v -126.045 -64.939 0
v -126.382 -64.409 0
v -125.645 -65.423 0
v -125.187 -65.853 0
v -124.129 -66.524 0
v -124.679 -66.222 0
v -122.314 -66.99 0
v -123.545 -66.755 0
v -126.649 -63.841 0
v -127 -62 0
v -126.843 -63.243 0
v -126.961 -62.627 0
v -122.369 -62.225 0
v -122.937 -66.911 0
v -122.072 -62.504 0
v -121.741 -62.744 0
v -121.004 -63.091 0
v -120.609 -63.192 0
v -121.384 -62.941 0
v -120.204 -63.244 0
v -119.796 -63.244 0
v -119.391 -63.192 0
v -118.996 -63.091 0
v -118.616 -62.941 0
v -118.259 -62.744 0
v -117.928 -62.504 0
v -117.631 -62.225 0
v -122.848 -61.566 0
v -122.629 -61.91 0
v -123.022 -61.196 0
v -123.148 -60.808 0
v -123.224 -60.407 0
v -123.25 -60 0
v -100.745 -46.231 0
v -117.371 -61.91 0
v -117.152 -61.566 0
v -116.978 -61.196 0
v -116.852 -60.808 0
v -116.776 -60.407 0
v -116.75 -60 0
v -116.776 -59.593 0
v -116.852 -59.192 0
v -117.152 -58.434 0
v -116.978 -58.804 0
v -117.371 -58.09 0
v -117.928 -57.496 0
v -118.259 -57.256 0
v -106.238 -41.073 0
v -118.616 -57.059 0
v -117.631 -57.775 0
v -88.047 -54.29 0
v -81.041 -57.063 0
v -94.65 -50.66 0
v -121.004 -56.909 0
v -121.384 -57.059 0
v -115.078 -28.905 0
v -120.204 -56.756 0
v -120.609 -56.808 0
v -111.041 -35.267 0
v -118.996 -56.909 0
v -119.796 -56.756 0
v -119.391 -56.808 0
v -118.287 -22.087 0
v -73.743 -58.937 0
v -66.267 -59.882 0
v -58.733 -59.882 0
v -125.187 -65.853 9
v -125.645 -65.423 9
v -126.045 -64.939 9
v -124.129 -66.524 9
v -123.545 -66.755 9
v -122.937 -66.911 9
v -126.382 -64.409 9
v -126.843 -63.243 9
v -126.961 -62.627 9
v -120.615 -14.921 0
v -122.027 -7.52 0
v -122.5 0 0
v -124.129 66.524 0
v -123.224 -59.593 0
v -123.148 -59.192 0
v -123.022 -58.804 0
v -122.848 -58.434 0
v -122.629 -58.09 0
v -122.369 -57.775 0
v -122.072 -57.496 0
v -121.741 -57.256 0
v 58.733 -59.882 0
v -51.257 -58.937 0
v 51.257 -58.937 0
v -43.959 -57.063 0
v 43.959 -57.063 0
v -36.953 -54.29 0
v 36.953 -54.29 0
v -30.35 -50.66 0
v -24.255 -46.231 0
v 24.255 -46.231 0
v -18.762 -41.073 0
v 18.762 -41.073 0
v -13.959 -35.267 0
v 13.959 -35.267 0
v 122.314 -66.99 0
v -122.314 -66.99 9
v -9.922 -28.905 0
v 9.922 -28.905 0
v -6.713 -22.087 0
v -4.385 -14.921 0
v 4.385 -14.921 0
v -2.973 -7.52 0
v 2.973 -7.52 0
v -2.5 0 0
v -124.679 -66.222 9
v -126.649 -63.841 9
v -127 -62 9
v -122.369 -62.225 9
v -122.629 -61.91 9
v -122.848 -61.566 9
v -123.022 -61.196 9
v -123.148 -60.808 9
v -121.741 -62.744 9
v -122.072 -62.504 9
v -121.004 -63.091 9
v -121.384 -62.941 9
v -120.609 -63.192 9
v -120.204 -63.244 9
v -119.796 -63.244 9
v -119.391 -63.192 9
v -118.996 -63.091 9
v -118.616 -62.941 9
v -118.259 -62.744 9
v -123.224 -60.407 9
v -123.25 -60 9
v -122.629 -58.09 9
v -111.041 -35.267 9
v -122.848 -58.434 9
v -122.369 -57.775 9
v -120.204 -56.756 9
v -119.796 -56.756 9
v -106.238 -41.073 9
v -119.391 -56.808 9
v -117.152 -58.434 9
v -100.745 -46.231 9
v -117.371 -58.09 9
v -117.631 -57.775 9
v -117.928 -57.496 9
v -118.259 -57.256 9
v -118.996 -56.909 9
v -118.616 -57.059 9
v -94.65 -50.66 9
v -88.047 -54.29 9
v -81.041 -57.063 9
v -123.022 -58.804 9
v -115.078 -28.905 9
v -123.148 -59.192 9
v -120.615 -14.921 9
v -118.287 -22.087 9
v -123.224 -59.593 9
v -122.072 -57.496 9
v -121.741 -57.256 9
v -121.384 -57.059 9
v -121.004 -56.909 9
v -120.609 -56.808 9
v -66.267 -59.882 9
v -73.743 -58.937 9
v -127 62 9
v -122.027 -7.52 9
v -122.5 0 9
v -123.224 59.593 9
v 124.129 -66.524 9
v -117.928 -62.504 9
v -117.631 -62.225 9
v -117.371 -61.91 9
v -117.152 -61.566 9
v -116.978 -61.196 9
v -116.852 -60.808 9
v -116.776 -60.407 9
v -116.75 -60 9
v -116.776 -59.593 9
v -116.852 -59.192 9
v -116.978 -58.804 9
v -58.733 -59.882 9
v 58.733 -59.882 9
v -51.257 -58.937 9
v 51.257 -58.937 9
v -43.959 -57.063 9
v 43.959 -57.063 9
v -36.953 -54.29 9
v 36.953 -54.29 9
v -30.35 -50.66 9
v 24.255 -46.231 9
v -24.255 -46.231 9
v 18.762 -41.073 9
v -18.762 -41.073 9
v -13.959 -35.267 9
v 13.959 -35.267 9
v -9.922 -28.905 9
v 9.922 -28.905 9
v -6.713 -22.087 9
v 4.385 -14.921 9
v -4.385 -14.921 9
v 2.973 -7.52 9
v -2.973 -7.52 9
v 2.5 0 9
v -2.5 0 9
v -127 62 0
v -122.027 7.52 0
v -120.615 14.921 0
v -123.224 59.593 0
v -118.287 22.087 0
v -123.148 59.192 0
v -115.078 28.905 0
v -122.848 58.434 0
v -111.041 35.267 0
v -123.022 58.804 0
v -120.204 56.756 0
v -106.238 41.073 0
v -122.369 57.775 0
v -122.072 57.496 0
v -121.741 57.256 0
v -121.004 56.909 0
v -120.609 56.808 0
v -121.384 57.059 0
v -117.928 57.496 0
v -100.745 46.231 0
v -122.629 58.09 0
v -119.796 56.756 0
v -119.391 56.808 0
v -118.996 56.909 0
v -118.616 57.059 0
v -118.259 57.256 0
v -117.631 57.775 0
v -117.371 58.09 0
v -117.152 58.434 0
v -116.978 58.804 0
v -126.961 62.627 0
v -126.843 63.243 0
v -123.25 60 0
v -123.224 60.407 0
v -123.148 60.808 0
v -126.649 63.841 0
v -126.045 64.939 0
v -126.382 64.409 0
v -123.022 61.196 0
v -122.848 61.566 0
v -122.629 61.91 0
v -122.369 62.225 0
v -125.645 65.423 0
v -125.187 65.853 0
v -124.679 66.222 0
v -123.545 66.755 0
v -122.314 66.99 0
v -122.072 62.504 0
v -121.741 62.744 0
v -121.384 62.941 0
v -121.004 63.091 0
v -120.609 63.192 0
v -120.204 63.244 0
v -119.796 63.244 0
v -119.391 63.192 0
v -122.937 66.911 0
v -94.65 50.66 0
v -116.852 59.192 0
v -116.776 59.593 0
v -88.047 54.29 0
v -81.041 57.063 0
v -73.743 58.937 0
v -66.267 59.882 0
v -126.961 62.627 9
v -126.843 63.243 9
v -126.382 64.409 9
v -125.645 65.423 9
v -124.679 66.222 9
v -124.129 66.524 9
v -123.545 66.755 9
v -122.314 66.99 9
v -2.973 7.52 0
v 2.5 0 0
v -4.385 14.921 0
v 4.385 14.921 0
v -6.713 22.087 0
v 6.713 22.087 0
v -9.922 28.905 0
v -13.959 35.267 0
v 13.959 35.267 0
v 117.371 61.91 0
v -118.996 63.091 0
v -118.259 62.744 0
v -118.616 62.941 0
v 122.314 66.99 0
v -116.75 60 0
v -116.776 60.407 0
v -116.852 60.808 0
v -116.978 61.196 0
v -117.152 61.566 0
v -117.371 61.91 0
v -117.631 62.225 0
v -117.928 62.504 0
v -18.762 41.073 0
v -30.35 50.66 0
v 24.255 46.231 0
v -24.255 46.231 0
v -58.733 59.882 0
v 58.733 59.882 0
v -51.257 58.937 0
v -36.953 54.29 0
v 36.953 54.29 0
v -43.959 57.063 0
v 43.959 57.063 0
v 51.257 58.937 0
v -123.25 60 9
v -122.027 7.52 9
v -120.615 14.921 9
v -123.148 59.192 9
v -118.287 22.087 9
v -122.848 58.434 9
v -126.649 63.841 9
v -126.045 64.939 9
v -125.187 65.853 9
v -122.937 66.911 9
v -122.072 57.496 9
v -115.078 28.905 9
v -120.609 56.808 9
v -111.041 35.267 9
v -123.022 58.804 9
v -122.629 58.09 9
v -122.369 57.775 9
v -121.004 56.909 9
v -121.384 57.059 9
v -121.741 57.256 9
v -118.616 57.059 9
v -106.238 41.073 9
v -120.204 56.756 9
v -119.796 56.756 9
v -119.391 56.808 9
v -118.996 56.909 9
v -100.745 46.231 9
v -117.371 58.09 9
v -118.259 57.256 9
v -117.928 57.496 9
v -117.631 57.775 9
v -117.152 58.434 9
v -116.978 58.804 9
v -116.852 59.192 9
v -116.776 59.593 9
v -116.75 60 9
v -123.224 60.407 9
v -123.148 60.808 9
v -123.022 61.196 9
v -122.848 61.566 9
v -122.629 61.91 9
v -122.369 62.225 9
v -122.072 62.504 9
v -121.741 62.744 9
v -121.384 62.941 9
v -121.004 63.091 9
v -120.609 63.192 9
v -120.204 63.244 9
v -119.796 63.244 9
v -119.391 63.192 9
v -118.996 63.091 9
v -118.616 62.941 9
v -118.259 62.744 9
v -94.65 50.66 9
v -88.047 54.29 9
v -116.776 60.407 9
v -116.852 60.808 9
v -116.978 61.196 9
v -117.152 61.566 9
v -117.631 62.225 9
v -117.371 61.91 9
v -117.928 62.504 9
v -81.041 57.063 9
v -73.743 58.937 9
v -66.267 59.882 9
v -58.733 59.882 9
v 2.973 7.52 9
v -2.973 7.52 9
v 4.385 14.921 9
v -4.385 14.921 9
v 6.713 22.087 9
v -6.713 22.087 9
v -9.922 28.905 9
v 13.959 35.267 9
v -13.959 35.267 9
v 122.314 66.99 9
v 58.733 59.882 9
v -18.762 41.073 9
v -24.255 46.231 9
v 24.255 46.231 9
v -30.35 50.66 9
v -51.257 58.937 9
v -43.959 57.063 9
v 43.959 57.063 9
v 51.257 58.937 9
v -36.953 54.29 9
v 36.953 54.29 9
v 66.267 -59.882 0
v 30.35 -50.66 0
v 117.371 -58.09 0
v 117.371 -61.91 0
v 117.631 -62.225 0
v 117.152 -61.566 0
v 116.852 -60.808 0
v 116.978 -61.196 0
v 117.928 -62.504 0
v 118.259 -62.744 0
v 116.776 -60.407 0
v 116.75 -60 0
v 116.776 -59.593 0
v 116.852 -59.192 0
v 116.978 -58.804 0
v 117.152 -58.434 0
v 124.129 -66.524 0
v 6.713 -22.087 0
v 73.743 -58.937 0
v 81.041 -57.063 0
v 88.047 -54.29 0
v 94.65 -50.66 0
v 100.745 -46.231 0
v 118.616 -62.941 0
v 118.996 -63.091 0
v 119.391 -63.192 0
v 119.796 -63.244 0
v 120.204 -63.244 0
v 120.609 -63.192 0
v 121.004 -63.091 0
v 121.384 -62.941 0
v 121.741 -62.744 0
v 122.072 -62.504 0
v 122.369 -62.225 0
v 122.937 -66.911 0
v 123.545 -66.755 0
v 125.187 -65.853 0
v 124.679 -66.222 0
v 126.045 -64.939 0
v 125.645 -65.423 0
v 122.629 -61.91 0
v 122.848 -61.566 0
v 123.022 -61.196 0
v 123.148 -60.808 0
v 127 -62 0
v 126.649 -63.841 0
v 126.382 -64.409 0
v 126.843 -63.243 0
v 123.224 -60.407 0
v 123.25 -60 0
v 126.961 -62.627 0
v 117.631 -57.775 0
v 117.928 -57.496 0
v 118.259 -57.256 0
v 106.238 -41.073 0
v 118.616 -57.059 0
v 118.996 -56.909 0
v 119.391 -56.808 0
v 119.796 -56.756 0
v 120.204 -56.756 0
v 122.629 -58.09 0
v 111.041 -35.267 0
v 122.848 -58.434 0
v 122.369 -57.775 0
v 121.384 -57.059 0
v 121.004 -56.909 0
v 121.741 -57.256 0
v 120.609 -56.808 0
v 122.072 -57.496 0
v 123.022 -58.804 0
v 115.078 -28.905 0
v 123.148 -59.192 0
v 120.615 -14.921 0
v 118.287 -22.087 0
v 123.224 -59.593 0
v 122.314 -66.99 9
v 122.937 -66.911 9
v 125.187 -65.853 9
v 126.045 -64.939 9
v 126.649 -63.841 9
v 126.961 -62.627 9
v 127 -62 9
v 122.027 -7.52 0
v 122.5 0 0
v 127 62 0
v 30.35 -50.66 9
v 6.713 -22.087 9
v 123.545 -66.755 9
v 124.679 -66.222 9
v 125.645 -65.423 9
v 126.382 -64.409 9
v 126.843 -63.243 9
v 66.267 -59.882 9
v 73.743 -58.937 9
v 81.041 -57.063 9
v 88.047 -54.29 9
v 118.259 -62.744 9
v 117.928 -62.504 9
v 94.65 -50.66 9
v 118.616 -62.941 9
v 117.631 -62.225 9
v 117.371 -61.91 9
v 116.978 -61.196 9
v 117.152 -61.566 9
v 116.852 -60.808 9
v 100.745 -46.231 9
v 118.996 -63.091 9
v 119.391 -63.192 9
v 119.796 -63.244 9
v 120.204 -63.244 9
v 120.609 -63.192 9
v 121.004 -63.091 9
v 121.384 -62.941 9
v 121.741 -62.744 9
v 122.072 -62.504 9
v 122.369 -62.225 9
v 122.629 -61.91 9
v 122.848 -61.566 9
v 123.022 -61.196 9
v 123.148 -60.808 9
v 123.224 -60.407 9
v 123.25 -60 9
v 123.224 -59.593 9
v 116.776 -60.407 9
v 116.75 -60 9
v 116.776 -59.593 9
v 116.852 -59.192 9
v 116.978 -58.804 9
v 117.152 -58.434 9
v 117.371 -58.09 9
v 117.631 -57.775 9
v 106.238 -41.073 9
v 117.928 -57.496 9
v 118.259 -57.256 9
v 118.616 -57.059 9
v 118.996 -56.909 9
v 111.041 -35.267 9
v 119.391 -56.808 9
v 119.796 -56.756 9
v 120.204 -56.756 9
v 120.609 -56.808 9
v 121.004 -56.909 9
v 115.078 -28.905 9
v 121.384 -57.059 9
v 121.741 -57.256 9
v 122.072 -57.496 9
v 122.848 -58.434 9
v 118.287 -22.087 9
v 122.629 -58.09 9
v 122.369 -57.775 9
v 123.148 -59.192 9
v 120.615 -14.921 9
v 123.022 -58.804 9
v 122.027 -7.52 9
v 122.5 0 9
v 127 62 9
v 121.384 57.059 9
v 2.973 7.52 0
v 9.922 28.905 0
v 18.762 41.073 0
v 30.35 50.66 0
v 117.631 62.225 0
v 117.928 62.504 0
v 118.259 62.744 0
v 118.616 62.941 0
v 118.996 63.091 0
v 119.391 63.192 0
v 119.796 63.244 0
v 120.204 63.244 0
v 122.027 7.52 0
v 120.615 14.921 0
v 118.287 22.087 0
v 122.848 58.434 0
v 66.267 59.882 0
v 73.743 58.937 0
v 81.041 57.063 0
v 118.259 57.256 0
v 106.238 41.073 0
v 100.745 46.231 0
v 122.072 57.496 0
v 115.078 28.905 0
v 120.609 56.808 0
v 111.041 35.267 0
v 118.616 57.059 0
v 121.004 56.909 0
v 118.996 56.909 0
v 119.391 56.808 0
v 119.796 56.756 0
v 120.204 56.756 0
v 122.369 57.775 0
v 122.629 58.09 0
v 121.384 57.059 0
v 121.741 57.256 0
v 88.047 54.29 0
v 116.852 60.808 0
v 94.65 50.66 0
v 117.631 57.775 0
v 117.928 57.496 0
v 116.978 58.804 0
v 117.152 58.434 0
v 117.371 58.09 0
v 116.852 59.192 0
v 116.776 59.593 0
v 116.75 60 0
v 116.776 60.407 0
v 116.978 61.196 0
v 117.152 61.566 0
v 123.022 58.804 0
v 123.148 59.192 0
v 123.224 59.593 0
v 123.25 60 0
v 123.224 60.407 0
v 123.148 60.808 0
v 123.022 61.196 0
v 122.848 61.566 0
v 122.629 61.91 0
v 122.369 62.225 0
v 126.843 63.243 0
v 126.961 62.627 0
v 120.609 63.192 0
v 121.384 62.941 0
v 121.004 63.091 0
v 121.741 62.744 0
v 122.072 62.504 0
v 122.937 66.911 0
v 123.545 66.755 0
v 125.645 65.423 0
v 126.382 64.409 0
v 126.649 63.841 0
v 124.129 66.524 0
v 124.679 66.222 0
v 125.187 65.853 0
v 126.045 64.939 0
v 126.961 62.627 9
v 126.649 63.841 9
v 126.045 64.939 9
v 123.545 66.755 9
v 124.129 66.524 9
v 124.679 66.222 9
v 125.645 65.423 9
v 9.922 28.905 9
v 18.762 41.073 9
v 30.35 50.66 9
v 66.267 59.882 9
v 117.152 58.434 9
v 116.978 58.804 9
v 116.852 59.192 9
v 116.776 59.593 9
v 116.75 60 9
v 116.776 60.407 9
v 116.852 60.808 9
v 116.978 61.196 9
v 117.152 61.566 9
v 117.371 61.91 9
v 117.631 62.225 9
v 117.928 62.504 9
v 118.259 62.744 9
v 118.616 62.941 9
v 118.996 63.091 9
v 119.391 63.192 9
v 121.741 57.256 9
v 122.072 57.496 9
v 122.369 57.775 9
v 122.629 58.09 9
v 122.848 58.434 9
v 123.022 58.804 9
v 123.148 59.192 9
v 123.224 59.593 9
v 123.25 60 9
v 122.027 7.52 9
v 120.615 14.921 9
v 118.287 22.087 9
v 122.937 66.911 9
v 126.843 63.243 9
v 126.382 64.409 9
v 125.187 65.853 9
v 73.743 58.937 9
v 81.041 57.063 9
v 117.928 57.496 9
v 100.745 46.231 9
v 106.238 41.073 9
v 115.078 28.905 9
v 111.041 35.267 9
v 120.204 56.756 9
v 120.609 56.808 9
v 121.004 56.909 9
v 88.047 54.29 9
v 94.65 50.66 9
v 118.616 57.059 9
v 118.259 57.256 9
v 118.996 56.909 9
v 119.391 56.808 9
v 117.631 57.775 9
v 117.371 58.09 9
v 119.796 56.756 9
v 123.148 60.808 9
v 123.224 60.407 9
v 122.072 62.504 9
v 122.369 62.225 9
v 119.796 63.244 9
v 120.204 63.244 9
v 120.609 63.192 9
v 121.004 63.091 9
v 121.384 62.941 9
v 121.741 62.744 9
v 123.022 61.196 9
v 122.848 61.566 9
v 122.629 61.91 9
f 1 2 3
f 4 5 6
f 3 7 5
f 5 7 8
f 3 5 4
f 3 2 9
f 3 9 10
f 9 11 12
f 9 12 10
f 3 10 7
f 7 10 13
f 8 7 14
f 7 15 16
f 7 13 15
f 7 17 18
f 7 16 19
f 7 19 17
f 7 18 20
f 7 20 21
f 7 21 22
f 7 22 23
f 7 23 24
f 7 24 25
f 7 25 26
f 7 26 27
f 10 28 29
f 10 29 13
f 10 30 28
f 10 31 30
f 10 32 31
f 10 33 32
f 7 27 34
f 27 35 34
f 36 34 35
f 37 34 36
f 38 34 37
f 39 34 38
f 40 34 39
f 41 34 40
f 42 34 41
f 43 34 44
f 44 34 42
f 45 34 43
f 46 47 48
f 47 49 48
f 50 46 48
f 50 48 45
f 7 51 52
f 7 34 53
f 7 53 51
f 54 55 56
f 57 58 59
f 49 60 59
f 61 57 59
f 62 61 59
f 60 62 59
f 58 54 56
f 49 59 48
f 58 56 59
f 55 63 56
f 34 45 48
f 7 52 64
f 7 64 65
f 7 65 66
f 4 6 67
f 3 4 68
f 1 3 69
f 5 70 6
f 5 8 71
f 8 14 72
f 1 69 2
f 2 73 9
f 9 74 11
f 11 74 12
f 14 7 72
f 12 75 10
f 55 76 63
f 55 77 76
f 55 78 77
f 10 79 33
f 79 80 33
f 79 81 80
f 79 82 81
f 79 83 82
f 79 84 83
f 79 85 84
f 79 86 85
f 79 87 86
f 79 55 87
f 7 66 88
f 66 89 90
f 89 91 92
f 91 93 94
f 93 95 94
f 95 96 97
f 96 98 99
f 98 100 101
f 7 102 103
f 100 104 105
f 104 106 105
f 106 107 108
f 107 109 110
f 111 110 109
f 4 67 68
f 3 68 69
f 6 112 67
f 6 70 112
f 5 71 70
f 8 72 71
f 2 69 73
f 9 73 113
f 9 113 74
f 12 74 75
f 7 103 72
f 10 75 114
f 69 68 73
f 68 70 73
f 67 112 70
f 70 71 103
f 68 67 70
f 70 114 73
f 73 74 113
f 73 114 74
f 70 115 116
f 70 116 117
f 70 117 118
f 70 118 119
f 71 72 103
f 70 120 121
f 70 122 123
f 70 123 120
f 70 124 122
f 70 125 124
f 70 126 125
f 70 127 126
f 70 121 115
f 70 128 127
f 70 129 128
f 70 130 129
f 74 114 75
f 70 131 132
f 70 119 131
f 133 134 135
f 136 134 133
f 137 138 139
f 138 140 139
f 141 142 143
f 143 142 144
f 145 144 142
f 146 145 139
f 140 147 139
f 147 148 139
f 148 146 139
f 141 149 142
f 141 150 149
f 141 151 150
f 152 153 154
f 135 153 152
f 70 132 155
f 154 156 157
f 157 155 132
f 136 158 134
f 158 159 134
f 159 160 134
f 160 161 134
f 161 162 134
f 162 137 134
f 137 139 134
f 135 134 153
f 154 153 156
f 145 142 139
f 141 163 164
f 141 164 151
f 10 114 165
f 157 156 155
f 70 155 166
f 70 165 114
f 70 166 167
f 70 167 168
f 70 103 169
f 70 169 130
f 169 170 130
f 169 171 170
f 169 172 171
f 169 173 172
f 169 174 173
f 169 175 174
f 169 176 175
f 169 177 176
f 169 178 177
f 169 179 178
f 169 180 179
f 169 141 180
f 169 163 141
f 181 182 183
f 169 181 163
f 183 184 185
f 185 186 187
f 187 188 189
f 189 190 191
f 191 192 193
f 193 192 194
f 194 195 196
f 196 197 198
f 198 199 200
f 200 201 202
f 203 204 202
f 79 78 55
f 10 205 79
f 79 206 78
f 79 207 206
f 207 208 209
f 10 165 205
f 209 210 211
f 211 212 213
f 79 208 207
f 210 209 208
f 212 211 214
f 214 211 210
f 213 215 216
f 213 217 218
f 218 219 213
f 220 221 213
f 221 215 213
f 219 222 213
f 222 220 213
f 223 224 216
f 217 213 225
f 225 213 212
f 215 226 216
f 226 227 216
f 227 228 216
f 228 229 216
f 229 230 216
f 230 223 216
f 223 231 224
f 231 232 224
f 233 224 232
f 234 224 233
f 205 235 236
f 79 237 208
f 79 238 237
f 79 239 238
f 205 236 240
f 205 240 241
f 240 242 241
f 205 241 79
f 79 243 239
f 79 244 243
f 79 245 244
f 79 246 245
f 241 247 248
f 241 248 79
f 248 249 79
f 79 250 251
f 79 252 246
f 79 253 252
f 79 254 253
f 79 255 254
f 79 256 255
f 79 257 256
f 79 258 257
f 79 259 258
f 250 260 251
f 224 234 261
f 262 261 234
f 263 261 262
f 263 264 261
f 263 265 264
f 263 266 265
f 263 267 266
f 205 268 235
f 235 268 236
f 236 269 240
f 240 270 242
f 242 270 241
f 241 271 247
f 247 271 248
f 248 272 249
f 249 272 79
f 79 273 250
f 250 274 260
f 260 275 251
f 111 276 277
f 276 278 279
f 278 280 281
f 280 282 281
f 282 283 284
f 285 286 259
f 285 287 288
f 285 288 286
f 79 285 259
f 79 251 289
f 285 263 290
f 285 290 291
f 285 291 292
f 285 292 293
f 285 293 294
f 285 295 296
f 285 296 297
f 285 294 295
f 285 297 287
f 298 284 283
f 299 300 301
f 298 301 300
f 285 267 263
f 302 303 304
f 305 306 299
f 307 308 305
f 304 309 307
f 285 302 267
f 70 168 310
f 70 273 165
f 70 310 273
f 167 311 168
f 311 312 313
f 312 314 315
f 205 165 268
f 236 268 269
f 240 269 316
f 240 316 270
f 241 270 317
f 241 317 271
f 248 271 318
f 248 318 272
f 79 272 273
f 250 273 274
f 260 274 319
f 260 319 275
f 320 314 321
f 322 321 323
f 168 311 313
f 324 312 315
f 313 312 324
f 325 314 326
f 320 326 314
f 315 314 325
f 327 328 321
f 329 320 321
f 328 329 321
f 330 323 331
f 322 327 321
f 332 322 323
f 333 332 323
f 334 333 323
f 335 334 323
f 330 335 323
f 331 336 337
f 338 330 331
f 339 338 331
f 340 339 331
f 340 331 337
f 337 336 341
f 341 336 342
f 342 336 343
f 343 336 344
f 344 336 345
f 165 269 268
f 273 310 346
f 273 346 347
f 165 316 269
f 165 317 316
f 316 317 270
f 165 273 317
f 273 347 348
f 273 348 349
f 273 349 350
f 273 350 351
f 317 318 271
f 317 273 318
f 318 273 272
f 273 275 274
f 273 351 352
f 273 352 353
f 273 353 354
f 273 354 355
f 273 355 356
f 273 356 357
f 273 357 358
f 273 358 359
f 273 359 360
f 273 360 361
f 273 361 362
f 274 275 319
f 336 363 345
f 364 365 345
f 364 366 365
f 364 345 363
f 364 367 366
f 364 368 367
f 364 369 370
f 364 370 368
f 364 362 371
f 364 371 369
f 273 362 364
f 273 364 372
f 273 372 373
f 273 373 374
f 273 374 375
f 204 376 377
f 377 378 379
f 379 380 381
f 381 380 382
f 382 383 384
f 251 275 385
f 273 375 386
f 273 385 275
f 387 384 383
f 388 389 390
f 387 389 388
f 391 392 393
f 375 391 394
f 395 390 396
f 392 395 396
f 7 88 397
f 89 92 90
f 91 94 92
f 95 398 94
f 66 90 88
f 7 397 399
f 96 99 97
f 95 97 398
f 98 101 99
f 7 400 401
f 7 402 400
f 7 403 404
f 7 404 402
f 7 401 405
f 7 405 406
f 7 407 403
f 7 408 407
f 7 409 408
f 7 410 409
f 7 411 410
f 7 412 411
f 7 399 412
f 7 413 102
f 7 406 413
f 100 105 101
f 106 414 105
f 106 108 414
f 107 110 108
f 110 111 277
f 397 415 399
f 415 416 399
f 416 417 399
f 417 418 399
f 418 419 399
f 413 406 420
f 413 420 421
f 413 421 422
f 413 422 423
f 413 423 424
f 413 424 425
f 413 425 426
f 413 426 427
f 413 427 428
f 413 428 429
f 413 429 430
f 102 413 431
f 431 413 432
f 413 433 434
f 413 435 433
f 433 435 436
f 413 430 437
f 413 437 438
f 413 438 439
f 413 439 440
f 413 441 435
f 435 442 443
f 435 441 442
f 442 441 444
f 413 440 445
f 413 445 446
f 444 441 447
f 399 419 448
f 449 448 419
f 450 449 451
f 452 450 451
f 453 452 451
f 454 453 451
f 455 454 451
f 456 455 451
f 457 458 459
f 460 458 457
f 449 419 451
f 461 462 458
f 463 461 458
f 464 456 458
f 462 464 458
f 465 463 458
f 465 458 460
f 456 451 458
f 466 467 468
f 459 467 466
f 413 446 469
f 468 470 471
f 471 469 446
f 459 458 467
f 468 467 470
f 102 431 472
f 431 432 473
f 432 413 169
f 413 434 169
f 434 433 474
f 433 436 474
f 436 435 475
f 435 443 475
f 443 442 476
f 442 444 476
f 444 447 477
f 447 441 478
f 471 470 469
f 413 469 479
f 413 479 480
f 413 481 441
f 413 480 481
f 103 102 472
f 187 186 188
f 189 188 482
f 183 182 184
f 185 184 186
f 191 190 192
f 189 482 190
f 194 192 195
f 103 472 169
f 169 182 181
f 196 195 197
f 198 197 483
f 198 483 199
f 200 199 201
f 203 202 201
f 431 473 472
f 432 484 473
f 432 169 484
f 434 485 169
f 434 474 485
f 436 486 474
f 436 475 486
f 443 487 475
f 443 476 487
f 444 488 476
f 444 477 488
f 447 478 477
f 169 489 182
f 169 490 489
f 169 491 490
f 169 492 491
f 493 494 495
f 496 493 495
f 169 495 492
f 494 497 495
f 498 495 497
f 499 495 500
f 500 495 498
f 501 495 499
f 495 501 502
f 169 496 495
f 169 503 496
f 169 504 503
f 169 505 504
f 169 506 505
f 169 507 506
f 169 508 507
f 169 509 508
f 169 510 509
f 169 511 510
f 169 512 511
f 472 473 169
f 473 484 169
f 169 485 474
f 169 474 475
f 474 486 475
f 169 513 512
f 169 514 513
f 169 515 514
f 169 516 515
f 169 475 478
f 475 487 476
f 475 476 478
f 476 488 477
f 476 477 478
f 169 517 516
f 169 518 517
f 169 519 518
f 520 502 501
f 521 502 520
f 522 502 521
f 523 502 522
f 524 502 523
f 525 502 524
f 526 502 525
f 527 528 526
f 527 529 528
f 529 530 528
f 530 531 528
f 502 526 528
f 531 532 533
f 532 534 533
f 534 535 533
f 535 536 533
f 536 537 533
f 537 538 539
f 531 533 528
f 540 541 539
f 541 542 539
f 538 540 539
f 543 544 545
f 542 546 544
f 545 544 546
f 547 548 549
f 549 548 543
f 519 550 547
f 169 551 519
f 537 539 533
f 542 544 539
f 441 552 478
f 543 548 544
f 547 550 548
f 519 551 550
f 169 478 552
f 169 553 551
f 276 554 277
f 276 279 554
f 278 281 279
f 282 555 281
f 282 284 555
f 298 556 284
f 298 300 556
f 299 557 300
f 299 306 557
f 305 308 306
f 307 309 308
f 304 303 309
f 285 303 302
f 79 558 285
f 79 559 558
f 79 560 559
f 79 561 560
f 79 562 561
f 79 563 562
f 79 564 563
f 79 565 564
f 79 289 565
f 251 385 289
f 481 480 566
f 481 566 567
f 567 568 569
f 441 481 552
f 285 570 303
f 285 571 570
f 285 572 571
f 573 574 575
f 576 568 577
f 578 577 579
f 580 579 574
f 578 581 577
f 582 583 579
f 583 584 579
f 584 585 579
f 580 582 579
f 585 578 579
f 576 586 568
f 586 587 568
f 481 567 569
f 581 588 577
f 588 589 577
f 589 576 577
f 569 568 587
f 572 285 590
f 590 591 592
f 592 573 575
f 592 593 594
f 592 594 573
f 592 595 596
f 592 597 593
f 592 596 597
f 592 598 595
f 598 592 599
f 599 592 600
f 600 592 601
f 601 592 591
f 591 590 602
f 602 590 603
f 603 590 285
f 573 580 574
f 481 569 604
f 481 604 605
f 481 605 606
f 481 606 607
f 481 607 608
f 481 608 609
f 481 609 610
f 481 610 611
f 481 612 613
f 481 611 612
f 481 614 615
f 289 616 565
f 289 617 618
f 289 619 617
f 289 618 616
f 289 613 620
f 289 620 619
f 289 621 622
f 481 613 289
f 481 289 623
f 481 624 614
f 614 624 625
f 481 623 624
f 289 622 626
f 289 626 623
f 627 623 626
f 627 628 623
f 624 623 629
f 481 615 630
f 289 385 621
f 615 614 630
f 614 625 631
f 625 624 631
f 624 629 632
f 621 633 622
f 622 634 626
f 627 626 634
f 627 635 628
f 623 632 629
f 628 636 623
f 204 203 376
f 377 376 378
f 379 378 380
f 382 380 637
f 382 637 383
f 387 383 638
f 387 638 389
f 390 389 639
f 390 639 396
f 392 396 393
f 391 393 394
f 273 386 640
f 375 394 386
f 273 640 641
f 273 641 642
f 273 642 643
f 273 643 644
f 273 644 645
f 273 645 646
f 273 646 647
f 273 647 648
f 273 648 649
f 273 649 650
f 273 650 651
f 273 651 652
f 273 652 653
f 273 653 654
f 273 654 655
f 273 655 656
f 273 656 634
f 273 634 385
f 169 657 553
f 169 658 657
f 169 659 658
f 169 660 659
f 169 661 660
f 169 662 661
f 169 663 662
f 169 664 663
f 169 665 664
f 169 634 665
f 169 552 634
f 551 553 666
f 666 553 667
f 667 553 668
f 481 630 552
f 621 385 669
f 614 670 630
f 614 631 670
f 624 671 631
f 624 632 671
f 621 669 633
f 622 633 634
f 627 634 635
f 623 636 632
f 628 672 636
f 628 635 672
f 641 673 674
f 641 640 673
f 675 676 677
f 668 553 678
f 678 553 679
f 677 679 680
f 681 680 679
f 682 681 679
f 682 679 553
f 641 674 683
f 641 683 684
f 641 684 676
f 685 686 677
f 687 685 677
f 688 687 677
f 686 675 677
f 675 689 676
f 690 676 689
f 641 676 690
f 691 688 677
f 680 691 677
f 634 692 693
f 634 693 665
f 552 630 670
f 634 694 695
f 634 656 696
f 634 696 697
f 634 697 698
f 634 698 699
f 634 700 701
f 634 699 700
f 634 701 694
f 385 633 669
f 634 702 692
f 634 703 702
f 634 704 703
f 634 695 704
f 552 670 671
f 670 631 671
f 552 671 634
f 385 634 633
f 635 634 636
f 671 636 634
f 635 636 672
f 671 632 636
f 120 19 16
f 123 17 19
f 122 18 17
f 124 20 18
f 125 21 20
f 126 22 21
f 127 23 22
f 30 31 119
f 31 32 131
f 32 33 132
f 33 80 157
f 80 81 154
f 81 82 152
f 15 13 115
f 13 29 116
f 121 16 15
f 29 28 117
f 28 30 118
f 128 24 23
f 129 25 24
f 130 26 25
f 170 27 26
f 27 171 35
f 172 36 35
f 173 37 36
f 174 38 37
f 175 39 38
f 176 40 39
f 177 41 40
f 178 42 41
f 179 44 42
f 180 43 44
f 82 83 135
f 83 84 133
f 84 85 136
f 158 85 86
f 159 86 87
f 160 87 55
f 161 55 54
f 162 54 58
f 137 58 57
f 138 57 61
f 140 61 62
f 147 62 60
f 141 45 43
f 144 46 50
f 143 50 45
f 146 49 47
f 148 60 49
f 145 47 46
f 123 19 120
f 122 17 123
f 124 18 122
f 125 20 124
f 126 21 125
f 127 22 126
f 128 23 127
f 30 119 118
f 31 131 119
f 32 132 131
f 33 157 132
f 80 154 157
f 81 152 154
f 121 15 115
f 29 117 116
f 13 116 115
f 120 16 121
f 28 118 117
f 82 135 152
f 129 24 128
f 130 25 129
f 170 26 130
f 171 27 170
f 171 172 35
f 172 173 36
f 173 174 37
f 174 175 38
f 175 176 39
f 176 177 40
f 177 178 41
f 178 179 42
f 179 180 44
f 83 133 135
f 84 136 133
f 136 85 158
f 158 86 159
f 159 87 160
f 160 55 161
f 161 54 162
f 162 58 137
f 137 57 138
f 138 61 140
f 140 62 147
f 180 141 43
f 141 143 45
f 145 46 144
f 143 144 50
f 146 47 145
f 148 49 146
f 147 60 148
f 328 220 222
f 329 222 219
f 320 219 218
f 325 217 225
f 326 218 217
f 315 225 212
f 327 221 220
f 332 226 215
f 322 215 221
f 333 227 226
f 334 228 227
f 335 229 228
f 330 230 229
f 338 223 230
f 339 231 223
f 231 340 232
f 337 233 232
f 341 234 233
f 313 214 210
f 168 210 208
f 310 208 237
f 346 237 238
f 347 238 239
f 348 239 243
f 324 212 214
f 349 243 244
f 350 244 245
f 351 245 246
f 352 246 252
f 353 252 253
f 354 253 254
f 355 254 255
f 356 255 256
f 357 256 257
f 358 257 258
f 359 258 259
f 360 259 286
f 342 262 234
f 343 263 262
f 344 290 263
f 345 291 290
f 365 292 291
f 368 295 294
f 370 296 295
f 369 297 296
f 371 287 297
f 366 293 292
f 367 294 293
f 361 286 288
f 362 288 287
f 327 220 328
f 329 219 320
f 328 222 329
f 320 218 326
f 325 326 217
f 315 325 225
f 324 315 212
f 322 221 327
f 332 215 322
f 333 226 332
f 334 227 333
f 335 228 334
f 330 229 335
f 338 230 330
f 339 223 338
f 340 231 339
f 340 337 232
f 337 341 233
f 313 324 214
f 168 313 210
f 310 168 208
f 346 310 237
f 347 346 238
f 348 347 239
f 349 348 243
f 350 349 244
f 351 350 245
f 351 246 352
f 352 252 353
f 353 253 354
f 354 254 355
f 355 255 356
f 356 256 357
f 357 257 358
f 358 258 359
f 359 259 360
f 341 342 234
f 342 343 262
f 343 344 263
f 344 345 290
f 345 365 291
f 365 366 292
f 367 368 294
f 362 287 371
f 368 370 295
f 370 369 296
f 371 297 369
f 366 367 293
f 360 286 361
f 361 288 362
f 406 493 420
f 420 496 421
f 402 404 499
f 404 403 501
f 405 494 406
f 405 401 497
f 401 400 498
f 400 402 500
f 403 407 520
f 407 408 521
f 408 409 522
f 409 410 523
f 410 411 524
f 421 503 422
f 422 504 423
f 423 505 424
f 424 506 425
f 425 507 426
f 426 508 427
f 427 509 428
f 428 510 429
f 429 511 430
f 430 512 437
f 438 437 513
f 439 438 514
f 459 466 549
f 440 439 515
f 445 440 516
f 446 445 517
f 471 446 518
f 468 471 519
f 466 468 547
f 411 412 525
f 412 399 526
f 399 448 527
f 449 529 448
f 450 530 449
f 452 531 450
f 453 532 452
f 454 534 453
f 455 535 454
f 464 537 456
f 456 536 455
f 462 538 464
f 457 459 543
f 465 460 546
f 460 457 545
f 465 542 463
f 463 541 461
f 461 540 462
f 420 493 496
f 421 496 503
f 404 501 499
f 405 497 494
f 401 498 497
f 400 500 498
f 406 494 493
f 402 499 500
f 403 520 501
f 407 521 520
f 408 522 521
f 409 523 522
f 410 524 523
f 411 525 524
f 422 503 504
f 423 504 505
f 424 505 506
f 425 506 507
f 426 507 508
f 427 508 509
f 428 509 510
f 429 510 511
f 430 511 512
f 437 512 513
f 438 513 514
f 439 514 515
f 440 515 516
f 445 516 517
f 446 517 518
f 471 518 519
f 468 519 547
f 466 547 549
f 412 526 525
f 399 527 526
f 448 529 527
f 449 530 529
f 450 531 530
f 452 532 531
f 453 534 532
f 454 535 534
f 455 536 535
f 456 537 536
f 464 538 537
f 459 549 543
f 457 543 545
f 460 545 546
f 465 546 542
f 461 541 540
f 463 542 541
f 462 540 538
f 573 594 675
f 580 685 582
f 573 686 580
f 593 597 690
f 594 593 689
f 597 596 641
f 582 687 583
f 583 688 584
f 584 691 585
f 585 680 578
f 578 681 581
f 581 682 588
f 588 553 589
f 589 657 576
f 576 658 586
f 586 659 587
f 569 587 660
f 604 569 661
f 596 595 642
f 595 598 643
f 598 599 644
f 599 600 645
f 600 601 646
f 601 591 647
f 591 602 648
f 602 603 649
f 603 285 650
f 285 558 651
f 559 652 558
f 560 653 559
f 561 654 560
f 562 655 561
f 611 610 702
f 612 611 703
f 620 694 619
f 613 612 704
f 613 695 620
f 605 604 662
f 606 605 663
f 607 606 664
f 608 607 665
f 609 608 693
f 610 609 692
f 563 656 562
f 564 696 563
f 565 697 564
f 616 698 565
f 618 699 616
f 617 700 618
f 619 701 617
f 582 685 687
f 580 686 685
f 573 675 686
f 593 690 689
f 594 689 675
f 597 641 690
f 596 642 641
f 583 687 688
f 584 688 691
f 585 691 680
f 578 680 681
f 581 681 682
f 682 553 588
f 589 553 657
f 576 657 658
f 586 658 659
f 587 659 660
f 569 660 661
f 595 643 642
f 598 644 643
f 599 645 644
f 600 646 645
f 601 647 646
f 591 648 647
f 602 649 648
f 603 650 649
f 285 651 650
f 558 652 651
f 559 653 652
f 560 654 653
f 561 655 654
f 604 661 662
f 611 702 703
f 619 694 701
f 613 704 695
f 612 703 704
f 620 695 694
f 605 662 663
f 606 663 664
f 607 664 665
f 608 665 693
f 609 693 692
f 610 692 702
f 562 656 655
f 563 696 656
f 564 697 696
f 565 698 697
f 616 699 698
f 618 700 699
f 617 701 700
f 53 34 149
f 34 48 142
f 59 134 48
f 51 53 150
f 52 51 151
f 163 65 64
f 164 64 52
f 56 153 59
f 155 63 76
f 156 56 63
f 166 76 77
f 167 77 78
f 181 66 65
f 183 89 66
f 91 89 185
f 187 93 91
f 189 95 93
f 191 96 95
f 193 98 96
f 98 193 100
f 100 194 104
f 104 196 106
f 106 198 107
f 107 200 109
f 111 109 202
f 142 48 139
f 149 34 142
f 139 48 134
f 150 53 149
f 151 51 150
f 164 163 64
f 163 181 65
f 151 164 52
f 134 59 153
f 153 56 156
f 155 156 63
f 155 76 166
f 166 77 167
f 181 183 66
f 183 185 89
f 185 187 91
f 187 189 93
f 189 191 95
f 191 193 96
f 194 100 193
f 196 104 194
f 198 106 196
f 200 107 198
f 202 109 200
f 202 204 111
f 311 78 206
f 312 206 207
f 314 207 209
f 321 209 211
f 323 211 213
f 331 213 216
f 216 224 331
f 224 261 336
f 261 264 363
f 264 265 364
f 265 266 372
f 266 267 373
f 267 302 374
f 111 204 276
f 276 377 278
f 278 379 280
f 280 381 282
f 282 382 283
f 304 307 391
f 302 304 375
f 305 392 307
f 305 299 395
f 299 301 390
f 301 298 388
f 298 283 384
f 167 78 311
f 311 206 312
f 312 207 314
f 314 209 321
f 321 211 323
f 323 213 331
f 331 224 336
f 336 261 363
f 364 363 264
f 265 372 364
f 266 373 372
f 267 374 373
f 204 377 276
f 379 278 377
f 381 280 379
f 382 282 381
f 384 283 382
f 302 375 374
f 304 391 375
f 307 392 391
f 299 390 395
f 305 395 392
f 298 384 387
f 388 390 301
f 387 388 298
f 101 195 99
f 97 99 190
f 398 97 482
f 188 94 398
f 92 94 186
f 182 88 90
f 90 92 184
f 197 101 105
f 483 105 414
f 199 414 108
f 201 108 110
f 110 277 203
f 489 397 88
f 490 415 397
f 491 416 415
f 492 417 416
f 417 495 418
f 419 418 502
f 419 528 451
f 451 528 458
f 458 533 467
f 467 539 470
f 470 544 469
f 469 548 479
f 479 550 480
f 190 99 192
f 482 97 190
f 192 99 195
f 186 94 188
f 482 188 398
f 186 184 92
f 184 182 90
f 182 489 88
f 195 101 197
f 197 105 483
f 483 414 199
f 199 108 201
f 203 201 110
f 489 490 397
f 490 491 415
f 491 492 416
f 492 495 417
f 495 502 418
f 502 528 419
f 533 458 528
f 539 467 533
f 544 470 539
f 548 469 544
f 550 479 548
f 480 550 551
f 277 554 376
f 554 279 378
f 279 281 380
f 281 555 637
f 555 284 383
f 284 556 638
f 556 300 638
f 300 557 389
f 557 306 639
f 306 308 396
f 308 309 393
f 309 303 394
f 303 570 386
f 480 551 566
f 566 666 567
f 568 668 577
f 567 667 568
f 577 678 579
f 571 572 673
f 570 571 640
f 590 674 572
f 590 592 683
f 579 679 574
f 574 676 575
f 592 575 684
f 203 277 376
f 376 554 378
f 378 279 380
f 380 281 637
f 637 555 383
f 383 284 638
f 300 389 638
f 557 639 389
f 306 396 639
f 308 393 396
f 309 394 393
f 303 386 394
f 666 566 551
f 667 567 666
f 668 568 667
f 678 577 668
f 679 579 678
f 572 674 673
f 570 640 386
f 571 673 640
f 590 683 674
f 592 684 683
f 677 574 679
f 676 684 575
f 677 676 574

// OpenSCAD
$fn = 50;

difference() {
	union() {
		hull() {
			translate(v = [-122.0, 62.0, 0]) {
				cylinder(h = 9, r = 5);
			}
			translate(v = [122.0, 62.0, 0]) {
				cylinder(h = 9, r = 5);
			}
			translate(v = [-122.0, -62.0, 0]) {
				cylinder(h = 9, r = 5);
			}
			translate(v = [122.0, -62.0, 0]) {
				cylinder(h = 9, r = 5);
			}
		}
	}
	union() {
		translate(v = [-120.0, -60.0, -100.0]) {
			cylinder(h = 200, r = 3.25);
		}
		translate(v = [-120.0, 60.0, -100.0]) {
			cylinder(h = 200, r = 3.25);
		}
		translate(v = [120.0, -60.0, -100.0]) {
			cylinder(h = 200, r = 3.25);
		}
		translate(v = [120.0, 60.0, -100.0]) {
			cylinder(h = 200, r = 3.25);
		}
		translate(v = [-120.0, -60.0, -100.0]) {
			cylinder(h = 200, r = 1.8);
		}
		translate(v = [-120.0, 60.0, -100.0]) {
			cylinder(h = 200, r = 1.8);
		}
		translate(v = [120.0, -60.0, -100.0]) {
			cylinder(h = 200, r = 1.8);
		}
		translate(v = [120.0, 60.0, -100.0]) {
			cylinder(h = 200, r = 1.8);
		}
		translate(v = [-62.5, 0, 0.0]) {
			cylinder(h = 9, r = 60.0);
		}
		translate(v = [62.5, 0, 0.0]) {
			cylinder(h = 9, r = 60.0);
		}
	}
}
